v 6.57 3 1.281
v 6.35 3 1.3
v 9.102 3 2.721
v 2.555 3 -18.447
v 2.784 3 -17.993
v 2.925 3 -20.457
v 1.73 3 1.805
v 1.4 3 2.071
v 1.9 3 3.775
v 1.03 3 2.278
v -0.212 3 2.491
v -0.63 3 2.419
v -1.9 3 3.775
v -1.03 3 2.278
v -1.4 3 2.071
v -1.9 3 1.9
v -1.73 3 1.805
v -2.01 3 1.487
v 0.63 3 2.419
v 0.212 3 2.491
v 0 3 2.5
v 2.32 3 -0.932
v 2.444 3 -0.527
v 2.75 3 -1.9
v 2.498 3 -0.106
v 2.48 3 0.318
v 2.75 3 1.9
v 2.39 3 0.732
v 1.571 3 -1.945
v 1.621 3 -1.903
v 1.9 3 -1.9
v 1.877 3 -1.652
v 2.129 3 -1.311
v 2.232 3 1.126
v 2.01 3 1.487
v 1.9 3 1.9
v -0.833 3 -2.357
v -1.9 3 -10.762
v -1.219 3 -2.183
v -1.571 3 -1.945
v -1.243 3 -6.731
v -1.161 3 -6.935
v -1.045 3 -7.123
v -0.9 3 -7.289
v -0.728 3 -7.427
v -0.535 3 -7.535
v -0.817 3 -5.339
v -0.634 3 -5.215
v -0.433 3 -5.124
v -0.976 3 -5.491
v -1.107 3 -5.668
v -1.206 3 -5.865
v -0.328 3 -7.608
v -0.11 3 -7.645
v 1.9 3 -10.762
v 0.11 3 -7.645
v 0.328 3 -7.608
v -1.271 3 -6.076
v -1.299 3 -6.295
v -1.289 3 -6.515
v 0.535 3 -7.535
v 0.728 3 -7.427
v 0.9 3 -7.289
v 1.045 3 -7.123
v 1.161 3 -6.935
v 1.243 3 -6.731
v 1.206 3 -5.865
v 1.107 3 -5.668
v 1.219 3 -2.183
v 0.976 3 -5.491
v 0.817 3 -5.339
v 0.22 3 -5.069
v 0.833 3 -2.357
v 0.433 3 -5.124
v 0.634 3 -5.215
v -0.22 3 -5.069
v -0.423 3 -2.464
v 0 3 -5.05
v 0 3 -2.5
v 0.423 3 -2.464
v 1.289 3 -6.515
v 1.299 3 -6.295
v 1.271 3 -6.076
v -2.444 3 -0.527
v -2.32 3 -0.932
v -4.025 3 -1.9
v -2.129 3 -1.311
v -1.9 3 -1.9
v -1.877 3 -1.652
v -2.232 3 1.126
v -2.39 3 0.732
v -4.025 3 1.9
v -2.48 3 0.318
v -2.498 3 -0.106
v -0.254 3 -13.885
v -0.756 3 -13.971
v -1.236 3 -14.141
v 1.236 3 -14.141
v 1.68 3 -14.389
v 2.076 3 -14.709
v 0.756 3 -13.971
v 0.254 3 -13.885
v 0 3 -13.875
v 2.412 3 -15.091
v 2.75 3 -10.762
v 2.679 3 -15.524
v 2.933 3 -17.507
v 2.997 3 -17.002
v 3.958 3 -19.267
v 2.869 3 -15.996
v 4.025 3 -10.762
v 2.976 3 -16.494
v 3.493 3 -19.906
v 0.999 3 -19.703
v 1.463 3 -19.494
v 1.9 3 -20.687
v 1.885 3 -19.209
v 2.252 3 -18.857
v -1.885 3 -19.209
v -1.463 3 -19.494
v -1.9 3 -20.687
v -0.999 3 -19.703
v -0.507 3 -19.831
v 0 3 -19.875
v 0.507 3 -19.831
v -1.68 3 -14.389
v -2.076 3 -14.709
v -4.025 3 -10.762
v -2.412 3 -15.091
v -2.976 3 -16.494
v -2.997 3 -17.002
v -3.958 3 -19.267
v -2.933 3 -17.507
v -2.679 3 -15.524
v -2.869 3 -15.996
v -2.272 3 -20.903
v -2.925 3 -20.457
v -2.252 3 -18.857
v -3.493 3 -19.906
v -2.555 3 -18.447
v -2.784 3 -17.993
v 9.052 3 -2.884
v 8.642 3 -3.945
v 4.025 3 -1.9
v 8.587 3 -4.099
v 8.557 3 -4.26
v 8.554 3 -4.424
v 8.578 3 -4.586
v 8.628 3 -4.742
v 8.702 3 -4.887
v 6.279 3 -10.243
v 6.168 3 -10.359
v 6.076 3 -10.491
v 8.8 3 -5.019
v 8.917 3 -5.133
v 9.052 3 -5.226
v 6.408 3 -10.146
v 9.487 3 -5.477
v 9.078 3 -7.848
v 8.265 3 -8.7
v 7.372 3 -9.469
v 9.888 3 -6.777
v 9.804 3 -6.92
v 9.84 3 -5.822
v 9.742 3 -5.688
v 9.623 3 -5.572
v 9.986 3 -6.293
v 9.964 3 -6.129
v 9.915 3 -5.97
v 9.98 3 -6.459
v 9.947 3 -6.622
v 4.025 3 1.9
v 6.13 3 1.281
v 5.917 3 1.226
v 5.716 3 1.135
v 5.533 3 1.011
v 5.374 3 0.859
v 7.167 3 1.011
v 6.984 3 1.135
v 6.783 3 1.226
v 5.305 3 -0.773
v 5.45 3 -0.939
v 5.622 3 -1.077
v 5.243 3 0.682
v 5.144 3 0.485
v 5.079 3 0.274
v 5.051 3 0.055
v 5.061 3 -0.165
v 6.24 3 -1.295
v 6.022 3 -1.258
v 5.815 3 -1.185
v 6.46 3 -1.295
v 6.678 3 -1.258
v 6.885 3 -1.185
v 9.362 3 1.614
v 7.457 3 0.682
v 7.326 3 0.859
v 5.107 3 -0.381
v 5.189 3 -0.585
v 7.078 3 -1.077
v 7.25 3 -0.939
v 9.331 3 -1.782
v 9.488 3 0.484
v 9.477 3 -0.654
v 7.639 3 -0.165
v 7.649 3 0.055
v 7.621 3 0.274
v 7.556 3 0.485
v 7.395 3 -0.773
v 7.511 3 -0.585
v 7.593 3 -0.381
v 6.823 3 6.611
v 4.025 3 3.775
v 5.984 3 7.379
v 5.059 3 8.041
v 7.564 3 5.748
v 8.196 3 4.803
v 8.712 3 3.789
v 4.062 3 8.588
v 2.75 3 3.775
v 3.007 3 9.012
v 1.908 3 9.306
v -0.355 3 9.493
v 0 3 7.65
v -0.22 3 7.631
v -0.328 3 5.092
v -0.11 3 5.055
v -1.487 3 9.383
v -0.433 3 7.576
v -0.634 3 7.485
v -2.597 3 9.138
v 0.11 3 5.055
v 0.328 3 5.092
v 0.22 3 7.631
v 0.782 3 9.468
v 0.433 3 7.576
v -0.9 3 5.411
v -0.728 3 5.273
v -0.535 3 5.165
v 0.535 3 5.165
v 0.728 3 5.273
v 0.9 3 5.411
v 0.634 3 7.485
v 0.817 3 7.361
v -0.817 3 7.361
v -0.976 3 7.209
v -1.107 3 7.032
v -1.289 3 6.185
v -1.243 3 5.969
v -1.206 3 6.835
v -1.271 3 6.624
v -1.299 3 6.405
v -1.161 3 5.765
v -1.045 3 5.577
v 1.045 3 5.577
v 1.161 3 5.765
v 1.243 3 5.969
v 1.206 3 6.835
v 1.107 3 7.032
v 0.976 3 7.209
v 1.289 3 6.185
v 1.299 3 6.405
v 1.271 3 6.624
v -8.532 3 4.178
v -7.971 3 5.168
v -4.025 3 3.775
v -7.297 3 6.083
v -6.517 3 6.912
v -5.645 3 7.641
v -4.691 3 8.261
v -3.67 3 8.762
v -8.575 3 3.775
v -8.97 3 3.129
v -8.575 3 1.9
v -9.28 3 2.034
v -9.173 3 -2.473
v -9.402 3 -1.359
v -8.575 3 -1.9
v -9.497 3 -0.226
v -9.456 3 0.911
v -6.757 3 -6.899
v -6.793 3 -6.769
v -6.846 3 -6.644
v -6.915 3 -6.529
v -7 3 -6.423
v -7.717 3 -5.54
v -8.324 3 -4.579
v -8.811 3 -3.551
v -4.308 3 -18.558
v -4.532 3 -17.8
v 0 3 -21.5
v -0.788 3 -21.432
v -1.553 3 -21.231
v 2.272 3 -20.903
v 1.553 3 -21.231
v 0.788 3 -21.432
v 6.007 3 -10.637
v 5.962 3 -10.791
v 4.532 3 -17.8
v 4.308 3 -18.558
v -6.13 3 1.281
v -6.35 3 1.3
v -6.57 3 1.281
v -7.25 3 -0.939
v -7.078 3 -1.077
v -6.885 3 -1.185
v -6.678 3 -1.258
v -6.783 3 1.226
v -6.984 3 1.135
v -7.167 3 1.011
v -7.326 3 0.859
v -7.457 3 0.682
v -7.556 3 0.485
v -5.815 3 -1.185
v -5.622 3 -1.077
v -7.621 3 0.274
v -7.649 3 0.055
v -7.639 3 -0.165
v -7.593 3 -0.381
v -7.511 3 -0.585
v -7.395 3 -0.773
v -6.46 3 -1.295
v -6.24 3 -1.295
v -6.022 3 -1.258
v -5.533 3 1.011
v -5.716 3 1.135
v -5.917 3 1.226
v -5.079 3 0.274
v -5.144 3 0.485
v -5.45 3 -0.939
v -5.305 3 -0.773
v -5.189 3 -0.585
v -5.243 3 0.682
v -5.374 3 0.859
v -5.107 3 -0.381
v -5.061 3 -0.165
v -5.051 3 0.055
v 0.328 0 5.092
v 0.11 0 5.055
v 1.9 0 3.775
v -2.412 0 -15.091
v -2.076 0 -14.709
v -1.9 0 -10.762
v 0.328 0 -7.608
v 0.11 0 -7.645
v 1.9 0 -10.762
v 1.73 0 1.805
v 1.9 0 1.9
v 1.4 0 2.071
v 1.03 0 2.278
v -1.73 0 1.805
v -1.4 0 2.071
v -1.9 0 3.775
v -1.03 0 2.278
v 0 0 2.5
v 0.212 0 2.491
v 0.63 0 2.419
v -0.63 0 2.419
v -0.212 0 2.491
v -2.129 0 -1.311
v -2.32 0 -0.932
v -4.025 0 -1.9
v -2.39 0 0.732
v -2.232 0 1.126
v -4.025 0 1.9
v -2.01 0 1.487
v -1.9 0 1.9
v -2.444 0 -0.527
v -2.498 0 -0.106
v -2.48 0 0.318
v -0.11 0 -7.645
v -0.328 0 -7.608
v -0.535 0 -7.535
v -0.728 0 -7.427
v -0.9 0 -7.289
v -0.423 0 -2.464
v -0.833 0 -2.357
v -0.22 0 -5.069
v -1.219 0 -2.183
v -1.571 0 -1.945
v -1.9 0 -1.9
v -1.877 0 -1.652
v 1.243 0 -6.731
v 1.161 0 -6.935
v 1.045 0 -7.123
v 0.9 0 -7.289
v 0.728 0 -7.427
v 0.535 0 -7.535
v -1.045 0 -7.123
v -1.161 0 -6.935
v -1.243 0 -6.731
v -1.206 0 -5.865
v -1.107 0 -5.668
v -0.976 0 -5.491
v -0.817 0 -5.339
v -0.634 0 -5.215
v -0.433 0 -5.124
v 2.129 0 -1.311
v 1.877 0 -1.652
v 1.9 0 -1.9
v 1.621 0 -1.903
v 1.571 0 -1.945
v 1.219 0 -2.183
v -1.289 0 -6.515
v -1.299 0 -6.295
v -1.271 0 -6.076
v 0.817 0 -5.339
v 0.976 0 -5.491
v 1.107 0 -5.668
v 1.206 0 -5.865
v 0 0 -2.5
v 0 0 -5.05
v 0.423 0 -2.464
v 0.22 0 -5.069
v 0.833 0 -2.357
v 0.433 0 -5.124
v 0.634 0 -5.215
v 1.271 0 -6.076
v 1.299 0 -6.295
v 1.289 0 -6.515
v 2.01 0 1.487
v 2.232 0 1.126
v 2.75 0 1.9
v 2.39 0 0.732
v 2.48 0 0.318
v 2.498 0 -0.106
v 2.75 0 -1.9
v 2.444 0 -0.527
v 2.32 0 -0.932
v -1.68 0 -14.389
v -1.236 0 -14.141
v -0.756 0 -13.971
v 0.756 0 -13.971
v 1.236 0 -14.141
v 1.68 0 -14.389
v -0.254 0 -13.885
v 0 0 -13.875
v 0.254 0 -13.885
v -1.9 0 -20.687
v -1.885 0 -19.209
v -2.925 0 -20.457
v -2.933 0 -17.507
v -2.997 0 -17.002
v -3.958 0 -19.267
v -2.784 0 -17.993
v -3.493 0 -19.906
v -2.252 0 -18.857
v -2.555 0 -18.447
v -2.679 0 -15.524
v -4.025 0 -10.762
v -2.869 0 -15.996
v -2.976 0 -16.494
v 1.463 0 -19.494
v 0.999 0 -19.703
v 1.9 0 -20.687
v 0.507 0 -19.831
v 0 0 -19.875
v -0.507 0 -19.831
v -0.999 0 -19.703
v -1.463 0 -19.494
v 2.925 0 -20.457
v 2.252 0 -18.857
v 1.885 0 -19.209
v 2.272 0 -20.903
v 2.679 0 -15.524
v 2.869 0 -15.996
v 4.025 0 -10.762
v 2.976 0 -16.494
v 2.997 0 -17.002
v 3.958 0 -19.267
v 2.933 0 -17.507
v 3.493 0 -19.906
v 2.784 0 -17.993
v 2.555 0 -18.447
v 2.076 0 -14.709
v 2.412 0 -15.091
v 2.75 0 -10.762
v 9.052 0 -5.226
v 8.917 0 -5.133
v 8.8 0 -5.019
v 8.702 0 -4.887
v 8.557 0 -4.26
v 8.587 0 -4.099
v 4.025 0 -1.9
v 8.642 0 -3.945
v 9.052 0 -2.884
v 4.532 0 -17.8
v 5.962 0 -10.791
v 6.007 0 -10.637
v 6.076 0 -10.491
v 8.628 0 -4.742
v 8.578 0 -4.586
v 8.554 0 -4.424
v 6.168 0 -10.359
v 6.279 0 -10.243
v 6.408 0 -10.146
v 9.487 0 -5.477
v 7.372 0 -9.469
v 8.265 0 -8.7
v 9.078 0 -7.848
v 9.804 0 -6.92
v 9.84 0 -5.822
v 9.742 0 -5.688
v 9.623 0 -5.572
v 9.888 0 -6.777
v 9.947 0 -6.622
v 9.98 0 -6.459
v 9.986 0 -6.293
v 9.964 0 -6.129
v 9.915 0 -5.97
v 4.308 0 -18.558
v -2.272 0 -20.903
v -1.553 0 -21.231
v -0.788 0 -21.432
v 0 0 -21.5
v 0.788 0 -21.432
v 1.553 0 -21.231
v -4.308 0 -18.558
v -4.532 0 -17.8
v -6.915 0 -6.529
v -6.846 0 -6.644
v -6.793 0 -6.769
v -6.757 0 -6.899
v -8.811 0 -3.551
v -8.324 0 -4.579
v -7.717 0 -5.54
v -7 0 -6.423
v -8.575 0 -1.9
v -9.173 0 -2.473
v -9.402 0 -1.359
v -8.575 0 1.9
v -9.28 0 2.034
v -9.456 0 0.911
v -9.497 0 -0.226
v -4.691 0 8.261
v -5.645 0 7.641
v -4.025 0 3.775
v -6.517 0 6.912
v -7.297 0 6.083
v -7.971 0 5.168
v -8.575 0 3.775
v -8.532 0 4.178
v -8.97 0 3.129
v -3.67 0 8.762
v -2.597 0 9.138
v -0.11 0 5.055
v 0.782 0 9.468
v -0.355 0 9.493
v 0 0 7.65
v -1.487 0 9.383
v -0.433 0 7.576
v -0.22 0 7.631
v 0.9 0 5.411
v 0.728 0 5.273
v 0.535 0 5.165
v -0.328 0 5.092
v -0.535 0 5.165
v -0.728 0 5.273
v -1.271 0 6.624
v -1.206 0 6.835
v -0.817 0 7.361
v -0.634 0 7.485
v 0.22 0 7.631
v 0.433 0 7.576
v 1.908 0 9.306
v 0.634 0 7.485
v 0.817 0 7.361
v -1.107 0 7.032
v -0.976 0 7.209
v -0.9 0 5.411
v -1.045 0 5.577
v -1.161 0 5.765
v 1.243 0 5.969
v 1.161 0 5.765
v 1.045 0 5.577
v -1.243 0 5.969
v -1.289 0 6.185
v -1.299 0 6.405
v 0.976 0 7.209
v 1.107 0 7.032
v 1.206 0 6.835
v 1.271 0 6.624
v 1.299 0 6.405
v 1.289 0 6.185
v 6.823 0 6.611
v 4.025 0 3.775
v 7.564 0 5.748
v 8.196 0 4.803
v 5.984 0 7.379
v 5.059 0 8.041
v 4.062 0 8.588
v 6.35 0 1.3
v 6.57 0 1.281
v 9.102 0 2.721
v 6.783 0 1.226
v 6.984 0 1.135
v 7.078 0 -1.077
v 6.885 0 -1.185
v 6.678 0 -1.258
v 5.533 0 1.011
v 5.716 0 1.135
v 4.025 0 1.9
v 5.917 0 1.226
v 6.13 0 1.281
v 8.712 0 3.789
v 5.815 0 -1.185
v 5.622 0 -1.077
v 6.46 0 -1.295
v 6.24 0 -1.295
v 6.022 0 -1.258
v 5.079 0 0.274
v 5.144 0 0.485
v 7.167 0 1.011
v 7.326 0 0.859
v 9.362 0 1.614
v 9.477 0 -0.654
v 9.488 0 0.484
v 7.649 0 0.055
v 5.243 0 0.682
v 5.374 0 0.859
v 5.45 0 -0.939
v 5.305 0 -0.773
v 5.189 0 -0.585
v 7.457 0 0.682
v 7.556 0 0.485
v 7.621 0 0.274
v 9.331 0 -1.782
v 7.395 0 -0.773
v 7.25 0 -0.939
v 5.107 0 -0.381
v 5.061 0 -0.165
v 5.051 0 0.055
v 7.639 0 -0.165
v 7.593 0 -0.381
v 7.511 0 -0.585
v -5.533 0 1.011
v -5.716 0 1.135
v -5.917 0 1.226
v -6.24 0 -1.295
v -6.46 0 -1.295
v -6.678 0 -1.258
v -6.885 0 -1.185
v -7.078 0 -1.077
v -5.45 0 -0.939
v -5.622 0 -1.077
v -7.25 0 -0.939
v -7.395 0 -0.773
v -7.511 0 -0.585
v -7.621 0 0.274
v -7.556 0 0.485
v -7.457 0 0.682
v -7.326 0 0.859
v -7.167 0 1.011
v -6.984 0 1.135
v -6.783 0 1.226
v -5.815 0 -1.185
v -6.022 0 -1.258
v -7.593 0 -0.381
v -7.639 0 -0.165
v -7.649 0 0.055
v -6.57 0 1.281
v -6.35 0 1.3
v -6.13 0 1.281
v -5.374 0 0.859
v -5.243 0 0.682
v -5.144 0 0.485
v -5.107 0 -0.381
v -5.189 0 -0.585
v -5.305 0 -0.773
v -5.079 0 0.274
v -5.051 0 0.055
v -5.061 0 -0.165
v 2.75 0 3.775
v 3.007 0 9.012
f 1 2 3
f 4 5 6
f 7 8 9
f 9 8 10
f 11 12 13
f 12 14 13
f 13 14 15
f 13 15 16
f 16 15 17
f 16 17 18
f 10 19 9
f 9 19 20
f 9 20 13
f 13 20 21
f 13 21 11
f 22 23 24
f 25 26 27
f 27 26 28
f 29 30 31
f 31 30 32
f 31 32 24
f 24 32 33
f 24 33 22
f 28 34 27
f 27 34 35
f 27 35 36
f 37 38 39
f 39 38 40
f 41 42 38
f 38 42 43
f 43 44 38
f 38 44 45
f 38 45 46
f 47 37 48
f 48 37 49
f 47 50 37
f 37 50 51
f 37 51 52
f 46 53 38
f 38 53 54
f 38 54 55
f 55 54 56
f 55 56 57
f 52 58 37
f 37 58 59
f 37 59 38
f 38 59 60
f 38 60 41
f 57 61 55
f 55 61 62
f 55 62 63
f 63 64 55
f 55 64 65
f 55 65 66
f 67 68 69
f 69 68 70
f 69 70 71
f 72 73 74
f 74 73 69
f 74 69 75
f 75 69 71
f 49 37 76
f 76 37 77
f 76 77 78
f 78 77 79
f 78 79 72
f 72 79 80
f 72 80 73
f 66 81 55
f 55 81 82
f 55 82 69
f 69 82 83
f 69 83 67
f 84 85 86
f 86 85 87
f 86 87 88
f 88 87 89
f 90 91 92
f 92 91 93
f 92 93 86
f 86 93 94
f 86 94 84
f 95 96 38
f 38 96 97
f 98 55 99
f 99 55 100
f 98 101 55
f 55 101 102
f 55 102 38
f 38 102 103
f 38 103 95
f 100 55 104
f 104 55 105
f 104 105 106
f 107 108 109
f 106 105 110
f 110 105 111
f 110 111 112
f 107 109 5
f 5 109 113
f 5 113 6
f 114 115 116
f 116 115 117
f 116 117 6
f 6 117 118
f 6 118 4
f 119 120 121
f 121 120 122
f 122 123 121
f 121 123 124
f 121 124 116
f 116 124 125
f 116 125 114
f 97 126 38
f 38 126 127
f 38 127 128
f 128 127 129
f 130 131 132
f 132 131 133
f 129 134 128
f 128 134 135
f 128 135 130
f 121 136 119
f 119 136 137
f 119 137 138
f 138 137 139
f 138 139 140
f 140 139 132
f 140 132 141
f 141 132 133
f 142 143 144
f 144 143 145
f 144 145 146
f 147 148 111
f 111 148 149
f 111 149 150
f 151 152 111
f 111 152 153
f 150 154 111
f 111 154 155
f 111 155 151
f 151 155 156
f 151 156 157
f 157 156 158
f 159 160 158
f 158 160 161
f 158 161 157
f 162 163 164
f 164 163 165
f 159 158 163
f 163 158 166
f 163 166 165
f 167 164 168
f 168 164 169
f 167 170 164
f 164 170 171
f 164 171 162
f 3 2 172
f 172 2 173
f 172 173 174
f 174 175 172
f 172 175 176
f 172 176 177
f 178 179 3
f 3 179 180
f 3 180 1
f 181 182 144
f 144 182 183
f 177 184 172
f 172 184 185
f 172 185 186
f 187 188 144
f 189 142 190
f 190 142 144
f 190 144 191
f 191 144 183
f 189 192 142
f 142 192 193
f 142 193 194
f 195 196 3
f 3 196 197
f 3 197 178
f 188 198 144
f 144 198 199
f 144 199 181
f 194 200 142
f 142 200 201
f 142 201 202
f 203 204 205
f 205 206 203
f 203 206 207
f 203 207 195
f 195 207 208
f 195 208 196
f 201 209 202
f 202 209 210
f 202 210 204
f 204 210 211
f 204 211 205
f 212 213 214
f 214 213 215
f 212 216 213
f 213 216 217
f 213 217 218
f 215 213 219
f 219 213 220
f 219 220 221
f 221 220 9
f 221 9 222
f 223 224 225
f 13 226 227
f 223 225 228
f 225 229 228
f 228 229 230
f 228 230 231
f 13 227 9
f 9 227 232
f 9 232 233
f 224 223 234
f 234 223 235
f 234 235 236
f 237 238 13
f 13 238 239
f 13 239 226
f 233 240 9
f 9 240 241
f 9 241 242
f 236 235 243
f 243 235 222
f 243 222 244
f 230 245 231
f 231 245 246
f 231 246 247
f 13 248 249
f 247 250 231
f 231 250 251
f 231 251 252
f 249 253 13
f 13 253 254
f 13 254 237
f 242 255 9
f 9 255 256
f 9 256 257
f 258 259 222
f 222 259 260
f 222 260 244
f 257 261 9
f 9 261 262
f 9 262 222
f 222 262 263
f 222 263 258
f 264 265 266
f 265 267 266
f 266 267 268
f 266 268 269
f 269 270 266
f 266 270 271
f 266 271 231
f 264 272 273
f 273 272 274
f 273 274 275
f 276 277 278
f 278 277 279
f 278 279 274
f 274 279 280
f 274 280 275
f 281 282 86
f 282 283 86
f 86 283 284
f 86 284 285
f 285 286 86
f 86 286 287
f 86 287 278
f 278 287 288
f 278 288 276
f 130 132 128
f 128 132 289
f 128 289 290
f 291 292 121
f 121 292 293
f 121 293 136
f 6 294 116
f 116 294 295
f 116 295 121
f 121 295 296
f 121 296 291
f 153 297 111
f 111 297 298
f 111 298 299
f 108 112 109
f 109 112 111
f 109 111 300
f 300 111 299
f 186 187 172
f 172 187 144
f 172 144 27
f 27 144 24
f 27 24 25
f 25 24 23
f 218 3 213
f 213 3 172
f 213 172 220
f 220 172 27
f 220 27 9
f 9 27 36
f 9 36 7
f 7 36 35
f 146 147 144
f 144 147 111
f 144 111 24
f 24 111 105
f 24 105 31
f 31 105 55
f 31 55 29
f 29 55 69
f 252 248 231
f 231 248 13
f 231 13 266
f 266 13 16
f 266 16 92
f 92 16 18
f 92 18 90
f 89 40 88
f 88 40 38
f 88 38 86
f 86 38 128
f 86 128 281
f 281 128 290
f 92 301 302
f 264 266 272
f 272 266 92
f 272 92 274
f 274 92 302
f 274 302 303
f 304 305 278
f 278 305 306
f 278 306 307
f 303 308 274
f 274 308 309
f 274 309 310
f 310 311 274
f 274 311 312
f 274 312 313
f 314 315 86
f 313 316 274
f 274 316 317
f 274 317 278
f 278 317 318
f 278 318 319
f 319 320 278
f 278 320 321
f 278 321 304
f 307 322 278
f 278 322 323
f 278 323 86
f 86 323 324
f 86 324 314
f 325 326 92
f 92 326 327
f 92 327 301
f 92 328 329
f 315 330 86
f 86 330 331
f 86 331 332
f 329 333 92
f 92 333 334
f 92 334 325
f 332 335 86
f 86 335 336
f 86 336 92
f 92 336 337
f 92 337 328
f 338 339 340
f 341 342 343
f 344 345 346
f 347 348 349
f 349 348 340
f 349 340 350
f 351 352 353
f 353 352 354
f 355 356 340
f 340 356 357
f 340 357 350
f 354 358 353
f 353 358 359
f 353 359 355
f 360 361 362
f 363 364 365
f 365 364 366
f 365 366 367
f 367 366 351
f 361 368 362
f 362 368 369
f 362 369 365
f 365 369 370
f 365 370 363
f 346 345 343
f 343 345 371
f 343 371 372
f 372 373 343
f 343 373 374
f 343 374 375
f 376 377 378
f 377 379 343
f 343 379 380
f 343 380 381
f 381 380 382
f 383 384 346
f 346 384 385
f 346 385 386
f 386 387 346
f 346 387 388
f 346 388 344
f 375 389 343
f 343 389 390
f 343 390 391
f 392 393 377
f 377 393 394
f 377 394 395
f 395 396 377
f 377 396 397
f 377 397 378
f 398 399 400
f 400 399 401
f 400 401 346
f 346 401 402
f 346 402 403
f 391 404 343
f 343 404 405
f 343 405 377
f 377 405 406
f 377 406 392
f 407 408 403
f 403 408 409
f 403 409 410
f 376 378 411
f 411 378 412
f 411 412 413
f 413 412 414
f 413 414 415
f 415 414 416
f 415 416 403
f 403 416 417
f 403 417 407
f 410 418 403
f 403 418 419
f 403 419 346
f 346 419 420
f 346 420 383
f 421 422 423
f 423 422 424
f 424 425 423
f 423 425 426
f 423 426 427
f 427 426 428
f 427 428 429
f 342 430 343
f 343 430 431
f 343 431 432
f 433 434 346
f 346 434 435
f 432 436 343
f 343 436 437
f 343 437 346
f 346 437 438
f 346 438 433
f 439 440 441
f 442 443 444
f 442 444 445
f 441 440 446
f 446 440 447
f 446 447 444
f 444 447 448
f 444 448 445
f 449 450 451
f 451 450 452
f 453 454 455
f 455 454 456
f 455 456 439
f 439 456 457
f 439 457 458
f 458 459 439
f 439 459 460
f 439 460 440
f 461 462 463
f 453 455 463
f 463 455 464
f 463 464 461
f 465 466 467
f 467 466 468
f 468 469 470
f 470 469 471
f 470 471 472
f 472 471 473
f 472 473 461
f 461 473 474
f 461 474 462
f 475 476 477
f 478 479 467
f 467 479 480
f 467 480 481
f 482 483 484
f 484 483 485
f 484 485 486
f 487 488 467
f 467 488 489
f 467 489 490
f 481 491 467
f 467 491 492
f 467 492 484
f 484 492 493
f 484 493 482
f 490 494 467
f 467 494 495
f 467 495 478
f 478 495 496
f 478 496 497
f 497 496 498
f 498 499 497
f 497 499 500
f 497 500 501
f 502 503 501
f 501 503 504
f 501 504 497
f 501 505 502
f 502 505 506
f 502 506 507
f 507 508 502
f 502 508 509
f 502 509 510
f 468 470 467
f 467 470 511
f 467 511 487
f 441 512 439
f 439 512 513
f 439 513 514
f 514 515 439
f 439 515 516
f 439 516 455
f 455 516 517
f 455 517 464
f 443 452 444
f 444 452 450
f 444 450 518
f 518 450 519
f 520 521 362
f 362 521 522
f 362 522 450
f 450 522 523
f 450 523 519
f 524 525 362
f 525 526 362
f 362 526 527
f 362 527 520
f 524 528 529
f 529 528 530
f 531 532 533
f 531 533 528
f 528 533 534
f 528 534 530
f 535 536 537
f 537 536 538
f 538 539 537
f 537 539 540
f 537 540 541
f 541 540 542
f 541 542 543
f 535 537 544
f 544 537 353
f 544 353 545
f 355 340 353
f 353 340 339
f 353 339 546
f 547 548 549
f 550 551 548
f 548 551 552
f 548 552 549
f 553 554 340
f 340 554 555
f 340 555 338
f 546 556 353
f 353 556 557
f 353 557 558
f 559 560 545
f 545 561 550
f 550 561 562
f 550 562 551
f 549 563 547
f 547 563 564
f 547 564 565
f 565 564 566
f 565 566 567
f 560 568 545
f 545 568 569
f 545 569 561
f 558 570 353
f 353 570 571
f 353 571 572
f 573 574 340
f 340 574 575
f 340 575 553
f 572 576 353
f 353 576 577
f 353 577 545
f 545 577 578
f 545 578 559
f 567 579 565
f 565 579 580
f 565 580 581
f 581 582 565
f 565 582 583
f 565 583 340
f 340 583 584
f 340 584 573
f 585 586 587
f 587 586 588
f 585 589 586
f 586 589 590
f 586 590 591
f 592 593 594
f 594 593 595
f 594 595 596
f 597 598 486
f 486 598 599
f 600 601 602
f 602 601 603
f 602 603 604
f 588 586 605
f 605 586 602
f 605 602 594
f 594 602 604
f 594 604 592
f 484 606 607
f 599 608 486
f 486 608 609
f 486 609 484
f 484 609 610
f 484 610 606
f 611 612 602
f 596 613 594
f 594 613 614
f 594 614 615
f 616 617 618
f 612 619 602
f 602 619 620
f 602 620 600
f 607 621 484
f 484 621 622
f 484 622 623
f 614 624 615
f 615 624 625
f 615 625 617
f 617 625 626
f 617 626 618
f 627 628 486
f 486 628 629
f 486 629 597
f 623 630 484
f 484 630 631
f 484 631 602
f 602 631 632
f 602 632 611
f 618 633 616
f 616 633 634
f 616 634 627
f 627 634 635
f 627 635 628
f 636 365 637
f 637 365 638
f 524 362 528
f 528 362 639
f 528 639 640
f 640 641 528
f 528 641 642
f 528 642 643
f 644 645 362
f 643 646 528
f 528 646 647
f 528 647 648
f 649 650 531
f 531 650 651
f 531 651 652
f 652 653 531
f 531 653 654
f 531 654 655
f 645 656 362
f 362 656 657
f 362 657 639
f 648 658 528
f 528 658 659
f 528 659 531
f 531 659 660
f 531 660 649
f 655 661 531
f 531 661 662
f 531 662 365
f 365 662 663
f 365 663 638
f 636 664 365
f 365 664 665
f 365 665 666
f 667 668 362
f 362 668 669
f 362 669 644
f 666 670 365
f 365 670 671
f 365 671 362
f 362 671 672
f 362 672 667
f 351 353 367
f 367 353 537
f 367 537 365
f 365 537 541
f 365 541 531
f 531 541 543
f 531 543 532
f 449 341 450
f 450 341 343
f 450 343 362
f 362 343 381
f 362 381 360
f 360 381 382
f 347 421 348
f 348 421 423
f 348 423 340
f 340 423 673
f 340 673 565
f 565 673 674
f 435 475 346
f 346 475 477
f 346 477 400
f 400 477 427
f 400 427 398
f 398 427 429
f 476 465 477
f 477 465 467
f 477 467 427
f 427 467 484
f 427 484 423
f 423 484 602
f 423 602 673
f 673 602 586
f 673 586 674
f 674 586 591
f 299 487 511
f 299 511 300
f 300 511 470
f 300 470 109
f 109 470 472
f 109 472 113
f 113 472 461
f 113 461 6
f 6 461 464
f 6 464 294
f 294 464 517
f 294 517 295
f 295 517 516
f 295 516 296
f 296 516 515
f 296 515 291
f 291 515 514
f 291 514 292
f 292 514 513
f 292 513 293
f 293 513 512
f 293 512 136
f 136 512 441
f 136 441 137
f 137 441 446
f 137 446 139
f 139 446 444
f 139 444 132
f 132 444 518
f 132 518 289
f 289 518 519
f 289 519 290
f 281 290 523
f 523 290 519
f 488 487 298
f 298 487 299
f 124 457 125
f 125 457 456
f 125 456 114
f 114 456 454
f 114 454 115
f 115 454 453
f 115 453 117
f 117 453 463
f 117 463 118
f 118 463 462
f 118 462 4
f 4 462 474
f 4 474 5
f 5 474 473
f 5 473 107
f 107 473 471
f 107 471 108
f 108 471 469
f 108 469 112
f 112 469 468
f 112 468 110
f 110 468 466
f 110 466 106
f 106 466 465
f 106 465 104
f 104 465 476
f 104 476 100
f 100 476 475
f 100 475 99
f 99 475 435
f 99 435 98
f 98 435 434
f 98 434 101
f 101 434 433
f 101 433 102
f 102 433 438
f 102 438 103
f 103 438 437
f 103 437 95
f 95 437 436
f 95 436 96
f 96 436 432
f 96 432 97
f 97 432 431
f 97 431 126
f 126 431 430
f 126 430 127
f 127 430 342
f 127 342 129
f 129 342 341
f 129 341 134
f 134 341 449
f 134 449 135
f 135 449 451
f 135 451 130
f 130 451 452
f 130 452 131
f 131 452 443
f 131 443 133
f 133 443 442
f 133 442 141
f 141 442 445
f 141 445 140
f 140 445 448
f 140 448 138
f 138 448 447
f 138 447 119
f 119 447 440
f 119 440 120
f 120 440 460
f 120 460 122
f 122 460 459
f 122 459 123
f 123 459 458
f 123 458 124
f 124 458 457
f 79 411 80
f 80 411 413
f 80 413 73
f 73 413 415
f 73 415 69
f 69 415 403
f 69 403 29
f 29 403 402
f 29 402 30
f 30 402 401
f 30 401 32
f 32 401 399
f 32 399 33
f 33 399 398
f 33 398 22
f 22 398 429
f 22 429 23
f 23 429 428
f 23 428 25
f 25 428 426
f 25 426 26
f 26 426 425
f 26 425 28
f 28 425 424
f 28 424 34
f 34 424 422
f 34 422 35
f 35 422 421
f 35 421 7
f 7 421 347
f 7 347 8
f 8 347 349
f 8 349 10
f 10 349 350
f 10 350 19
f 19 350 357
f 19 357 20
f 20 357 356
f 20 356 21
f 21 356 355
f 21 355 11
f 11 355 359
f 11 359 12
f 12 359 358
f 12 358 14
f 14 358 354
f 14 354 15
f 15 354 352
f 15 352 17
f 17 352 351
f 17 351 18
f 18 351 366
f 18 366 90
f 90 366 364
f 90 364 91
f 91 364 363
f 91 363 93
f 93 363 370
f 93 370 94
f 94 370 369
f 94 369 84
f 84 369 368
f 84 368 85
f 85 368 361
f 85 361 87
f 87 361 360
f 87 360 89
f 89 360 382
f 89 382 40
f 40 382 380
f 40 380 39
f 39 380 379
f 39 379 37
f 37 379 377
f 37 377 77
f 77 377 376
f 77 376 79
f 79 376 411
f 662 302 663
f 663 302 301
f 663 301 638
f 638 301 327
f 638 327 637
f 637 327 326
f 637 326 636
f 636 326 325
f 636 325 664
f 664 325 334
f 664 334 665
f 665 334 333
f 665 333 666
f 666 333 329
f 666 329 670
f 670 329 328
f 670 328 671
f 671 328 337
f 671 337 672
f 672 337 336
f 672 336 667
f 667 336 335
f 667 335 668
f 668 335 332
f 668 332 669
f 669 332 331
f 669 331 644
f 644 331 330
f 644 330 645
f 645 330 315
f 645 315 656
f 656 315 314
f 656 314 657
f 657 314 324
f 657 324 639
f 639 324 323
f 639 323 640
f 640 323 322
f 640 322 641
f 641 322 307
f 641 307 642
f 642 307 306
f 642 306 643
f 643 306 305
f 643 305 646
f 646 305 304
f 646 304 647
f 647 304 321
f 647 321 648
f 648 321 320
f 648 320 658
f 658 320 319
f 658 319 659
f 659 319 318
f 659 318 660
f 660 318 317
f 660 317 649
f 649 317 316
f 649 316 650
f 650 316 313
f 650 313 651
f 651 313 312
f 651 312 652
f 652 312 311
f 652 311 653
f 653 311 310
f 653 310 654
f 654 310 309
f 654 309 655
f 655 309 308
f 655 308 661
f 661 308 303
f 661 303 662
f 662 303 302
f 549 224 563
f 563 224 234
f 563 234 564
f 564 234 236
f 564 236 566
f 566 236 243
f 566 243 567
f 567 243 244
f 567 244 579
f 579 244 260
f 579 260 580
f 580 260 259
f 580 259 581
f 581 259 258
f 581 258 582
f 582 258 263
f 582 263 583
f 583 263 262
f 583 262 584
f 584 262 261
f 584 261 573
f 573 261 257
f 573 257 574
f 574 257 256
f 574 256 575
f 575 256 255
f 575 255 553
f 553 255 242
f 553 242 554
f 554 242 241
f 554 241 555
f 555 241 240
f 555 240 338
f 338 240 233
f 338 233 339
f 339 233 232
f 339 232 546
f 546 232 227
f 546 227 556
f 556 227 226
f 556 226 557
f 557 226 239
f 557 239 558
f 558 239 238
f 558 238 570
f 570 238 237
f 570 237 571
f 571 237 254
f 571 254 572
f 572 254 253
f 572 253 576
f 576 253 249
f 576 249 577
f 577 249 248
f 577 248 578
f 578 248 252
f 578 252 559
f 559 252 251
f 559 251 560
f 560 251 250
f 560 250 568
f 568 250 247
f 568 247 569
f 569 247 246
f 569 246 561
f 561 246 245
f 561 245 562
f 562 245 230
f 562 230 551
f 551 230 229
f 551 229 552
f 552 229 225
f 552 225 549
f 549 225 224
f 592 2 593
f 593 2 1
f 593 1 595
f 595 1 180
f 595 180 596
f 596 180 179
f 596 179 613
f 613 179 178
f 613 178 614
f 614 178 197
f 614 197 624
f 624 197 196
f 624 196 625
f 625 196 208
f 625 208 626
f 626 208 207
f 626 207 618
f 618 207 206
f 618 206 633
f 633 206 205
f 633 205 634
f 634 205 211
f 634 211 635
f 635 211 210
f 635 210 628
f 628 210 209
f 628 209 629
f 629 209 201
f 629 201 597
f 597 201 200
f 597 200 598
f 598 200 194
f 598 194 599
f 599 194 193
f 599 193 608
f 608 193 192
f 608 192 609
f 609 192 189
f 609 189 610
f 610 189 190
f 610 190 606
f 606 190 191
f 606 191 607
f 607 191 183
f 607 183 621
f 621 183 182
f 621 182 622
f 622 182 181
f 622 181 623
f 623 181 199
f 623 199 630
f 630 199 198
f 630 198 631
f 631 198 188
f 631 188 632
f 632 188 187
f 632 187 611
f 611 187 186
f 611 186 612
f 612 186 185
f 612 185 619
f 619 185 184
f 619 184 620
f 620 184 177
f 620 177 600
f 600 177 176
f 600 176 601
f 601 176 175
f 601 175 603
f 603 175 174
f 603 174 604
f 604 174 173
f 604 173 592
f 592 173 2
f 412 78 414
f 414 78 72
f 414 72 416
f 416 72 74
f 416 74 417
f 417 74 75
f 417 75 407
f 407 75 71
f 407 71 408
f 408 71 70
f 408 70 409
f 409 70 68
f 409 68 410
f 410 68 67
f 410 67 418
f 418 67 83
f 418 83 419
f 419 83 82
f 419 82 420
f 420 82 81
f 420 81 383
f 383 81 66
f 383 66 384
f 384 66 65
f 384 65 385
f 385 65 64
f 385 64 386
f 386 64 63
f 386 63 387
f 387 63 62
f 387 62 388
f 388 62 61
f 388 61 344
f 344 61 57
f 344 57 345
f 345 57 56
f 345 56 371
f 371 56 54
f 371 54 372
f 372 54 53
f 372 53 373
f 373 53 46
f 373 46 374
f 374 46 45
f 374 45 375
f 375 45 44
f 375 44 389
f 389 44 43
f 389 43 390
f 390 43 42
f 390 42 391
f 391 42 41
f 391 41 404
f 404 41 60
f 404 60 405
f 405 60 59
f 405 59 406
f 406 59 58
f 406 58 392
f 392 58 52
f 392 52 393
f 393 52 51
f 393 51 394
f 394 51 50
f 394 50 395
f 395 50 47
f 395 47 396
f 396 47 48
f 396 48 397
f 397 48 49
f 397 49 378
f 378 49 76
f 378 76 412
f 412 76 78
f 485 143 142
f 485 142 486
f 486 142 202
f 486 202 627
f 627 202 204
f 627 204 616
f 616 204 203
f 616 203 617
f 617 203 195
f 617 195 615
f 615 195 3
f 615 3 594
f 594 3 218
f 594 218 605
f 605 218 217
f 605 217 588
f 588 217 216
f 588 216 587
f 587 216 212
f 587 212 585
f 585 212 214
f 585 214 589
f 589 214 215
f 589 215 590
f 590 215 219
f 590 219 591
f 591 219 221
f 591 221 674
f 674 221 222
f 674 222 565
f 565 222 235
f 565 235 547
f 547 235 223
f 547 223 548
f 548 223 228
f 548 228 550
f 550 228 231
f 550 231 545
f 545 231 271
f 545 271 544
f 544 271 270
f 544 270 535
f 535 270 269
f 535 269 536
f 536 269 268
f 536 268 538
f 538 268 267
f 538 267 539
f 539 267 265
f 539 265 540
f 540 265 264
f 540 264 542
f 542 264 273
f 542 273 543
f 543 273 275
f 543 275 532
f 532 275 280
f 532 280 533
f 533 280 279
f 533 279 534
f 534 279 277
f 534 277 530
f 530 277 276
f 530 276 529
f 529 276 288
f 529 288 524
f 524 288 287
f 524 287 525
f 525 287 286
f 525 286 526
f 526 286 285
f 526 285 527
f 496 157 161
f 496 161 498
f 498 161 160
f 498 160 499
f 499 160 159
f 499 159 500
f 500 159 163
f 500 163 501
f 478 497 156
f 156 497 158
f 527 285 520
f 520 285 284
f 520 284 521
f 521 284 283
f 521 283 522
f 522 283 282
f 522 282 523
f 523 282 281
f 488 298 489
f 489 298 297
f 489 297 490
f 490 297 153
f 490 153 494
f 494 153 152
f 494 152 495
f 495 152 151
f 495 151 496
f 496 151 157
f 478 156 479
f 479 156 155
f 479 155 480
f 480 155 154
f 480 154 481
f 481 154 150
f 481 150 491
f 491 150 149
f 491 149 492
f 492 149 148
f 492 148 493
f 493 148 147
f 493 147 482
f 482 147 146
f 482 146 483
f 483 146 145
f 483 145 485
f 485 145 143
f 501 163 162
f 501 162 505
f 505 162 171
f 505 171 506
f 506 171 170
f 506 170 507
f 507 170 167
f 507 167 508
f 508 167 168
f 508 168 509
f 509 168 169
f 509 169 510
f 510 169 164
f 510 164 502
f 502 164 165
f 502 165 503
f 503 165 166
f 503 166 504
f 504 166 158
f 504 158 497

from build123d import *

# Parameters (mm, degrees)
SKETCH1_R           = 3
SKETCH1_R_2         = 2.5
BOSS_EXTRUDE1_DEPTH = 3
SKETCH2_R           = 1.3
CUT_EXTRUDE1_DEPTH  = 3
BOSS_EXTRUDE2_START = -3
BOSS_EXTRUDE2_DEPTH = 3
BOSS_EXTRUDE3_START = -3
BOSS_EXTRUDE3_DEPTH = 3
FILLET1_R           = 1


with BuildPart() as part:
    # Sketch1 → Boss-Extrude1 (new body)
    with BuildSketch(Plane(origin=(0, 0, 0), x_dir=(1, 0, 0), z_dir=(0, 1, 0))):
        with BuildLine():
            Line((-4.531642246, 17.7995776), (-7.838367177, 1.6))
            ThreePointArc((-7.838367177, 1.6), (0, -8), (7.838367177, 1.6))
            Line((7.838367177, 1.6), (4.531642246, 17.7995776))
            ThreePointArc((4.531642246, 17.7995776), (0, 21.499648), (-4.531642246, 17.7995776))
        make_face()
        with Locations(Location((0, 16.87456, 0), (0, 0, 270))):
            Circle(SKETCH1_R, mode=Mode.SUBTRACT)
        with Locations(Location((0, 0, 0), (0, 0, 270))):
            Circle(SKETCH1_R_2, mode=Mode.SUBTRACT)
    extrude(amount=BOSS_EXTRUDE1_DEPTH)

    # Sketch2 → Cut-Extrude1 (cut)
    with BuildSketch(Plane(origin=(0, 3, 0), x_dir=(1, 0, 0), z_dir=(0, 1, 0))):
        with Locations(Location((0, 6.35, 0), (0, 0, 270))):
            Circle(SKETCH2_R)
        with Locations(Location((6.35, 0, 0), (0, 0, 270))):
            Circle(SKETCH2_R)
        with Locations(Location((0, -6.35, 0), (0, 0, 270))):
            Circle(SKETCH2_R)
        with Locations(Location((-6.35, 0, 0), (0, 0, 270))):
            Circle(SKETCH2_R)
    extrude(amount=-CUT_EXTRUDE1_DEPTH, mode=Mode.SUBTRACT)

    # Sketch3 → Boss-Extrude2 (add)
    with BuildSketch(Plane(origin=(0, 3, 0), x_dir=(1, 0, 0), z_dir=(0, 1, 0)).offset(BOSS_EXTRUDE2_START)):
        with BuildLine():
            Line((-7.838367177, 1.6), (-6.8136721, 6.619960159))
            ThreePointArc((-6.8136721, 6.619960159), (0, -9.5), (6.8136721, 6.619960159))
            Line((6.8136721, 6.619960159), (7.838367177, 1.6))
            ThreePointArc((7.838367177, 1.6), (0, -8), (-7.838367177, 1.6))
        make_face()
    extrude(amount=BOSS_EXTRUDE2_DEPTH)

    # Sketch4 → Boss-Extrude3 (add)
    with BuildSketch(Plane(origin=(0, 3, 0), x_dir=(1, 0, 0), z_dir=(0, 1, 0)).offset(BOSS_EXTRUDE3_START)):
        with BuildLine():
            Line((8.227241336, 4.75), (10.392304845, 6))
            ThreePointArc((10.392304845, 6), (6, 10.392304845), (0, 12))
            Line((0, 12), (0, 9.5))
            ThreePointArc((0, 9.5), (4.75, 8.227241336), (8.227241336, 4.75))
        make_face()
    extrude(amount=BOSS_EXTRUDE3_DEPTH)

    # Fillet1
    fillet1_edges = [part.edges().sort_by_distance(p)[0] for p in [
        (-6.8136721, 1.5, -6.619960159),
        (6.049512795, 1.5, -10.36356092),
        (8.227241336, 1.5, -4.75),
        (10.392304845, 1.5, -6),
    ]]
    fillet(fillet1_edges, radius=FILLET1_R)


solid = part.part
